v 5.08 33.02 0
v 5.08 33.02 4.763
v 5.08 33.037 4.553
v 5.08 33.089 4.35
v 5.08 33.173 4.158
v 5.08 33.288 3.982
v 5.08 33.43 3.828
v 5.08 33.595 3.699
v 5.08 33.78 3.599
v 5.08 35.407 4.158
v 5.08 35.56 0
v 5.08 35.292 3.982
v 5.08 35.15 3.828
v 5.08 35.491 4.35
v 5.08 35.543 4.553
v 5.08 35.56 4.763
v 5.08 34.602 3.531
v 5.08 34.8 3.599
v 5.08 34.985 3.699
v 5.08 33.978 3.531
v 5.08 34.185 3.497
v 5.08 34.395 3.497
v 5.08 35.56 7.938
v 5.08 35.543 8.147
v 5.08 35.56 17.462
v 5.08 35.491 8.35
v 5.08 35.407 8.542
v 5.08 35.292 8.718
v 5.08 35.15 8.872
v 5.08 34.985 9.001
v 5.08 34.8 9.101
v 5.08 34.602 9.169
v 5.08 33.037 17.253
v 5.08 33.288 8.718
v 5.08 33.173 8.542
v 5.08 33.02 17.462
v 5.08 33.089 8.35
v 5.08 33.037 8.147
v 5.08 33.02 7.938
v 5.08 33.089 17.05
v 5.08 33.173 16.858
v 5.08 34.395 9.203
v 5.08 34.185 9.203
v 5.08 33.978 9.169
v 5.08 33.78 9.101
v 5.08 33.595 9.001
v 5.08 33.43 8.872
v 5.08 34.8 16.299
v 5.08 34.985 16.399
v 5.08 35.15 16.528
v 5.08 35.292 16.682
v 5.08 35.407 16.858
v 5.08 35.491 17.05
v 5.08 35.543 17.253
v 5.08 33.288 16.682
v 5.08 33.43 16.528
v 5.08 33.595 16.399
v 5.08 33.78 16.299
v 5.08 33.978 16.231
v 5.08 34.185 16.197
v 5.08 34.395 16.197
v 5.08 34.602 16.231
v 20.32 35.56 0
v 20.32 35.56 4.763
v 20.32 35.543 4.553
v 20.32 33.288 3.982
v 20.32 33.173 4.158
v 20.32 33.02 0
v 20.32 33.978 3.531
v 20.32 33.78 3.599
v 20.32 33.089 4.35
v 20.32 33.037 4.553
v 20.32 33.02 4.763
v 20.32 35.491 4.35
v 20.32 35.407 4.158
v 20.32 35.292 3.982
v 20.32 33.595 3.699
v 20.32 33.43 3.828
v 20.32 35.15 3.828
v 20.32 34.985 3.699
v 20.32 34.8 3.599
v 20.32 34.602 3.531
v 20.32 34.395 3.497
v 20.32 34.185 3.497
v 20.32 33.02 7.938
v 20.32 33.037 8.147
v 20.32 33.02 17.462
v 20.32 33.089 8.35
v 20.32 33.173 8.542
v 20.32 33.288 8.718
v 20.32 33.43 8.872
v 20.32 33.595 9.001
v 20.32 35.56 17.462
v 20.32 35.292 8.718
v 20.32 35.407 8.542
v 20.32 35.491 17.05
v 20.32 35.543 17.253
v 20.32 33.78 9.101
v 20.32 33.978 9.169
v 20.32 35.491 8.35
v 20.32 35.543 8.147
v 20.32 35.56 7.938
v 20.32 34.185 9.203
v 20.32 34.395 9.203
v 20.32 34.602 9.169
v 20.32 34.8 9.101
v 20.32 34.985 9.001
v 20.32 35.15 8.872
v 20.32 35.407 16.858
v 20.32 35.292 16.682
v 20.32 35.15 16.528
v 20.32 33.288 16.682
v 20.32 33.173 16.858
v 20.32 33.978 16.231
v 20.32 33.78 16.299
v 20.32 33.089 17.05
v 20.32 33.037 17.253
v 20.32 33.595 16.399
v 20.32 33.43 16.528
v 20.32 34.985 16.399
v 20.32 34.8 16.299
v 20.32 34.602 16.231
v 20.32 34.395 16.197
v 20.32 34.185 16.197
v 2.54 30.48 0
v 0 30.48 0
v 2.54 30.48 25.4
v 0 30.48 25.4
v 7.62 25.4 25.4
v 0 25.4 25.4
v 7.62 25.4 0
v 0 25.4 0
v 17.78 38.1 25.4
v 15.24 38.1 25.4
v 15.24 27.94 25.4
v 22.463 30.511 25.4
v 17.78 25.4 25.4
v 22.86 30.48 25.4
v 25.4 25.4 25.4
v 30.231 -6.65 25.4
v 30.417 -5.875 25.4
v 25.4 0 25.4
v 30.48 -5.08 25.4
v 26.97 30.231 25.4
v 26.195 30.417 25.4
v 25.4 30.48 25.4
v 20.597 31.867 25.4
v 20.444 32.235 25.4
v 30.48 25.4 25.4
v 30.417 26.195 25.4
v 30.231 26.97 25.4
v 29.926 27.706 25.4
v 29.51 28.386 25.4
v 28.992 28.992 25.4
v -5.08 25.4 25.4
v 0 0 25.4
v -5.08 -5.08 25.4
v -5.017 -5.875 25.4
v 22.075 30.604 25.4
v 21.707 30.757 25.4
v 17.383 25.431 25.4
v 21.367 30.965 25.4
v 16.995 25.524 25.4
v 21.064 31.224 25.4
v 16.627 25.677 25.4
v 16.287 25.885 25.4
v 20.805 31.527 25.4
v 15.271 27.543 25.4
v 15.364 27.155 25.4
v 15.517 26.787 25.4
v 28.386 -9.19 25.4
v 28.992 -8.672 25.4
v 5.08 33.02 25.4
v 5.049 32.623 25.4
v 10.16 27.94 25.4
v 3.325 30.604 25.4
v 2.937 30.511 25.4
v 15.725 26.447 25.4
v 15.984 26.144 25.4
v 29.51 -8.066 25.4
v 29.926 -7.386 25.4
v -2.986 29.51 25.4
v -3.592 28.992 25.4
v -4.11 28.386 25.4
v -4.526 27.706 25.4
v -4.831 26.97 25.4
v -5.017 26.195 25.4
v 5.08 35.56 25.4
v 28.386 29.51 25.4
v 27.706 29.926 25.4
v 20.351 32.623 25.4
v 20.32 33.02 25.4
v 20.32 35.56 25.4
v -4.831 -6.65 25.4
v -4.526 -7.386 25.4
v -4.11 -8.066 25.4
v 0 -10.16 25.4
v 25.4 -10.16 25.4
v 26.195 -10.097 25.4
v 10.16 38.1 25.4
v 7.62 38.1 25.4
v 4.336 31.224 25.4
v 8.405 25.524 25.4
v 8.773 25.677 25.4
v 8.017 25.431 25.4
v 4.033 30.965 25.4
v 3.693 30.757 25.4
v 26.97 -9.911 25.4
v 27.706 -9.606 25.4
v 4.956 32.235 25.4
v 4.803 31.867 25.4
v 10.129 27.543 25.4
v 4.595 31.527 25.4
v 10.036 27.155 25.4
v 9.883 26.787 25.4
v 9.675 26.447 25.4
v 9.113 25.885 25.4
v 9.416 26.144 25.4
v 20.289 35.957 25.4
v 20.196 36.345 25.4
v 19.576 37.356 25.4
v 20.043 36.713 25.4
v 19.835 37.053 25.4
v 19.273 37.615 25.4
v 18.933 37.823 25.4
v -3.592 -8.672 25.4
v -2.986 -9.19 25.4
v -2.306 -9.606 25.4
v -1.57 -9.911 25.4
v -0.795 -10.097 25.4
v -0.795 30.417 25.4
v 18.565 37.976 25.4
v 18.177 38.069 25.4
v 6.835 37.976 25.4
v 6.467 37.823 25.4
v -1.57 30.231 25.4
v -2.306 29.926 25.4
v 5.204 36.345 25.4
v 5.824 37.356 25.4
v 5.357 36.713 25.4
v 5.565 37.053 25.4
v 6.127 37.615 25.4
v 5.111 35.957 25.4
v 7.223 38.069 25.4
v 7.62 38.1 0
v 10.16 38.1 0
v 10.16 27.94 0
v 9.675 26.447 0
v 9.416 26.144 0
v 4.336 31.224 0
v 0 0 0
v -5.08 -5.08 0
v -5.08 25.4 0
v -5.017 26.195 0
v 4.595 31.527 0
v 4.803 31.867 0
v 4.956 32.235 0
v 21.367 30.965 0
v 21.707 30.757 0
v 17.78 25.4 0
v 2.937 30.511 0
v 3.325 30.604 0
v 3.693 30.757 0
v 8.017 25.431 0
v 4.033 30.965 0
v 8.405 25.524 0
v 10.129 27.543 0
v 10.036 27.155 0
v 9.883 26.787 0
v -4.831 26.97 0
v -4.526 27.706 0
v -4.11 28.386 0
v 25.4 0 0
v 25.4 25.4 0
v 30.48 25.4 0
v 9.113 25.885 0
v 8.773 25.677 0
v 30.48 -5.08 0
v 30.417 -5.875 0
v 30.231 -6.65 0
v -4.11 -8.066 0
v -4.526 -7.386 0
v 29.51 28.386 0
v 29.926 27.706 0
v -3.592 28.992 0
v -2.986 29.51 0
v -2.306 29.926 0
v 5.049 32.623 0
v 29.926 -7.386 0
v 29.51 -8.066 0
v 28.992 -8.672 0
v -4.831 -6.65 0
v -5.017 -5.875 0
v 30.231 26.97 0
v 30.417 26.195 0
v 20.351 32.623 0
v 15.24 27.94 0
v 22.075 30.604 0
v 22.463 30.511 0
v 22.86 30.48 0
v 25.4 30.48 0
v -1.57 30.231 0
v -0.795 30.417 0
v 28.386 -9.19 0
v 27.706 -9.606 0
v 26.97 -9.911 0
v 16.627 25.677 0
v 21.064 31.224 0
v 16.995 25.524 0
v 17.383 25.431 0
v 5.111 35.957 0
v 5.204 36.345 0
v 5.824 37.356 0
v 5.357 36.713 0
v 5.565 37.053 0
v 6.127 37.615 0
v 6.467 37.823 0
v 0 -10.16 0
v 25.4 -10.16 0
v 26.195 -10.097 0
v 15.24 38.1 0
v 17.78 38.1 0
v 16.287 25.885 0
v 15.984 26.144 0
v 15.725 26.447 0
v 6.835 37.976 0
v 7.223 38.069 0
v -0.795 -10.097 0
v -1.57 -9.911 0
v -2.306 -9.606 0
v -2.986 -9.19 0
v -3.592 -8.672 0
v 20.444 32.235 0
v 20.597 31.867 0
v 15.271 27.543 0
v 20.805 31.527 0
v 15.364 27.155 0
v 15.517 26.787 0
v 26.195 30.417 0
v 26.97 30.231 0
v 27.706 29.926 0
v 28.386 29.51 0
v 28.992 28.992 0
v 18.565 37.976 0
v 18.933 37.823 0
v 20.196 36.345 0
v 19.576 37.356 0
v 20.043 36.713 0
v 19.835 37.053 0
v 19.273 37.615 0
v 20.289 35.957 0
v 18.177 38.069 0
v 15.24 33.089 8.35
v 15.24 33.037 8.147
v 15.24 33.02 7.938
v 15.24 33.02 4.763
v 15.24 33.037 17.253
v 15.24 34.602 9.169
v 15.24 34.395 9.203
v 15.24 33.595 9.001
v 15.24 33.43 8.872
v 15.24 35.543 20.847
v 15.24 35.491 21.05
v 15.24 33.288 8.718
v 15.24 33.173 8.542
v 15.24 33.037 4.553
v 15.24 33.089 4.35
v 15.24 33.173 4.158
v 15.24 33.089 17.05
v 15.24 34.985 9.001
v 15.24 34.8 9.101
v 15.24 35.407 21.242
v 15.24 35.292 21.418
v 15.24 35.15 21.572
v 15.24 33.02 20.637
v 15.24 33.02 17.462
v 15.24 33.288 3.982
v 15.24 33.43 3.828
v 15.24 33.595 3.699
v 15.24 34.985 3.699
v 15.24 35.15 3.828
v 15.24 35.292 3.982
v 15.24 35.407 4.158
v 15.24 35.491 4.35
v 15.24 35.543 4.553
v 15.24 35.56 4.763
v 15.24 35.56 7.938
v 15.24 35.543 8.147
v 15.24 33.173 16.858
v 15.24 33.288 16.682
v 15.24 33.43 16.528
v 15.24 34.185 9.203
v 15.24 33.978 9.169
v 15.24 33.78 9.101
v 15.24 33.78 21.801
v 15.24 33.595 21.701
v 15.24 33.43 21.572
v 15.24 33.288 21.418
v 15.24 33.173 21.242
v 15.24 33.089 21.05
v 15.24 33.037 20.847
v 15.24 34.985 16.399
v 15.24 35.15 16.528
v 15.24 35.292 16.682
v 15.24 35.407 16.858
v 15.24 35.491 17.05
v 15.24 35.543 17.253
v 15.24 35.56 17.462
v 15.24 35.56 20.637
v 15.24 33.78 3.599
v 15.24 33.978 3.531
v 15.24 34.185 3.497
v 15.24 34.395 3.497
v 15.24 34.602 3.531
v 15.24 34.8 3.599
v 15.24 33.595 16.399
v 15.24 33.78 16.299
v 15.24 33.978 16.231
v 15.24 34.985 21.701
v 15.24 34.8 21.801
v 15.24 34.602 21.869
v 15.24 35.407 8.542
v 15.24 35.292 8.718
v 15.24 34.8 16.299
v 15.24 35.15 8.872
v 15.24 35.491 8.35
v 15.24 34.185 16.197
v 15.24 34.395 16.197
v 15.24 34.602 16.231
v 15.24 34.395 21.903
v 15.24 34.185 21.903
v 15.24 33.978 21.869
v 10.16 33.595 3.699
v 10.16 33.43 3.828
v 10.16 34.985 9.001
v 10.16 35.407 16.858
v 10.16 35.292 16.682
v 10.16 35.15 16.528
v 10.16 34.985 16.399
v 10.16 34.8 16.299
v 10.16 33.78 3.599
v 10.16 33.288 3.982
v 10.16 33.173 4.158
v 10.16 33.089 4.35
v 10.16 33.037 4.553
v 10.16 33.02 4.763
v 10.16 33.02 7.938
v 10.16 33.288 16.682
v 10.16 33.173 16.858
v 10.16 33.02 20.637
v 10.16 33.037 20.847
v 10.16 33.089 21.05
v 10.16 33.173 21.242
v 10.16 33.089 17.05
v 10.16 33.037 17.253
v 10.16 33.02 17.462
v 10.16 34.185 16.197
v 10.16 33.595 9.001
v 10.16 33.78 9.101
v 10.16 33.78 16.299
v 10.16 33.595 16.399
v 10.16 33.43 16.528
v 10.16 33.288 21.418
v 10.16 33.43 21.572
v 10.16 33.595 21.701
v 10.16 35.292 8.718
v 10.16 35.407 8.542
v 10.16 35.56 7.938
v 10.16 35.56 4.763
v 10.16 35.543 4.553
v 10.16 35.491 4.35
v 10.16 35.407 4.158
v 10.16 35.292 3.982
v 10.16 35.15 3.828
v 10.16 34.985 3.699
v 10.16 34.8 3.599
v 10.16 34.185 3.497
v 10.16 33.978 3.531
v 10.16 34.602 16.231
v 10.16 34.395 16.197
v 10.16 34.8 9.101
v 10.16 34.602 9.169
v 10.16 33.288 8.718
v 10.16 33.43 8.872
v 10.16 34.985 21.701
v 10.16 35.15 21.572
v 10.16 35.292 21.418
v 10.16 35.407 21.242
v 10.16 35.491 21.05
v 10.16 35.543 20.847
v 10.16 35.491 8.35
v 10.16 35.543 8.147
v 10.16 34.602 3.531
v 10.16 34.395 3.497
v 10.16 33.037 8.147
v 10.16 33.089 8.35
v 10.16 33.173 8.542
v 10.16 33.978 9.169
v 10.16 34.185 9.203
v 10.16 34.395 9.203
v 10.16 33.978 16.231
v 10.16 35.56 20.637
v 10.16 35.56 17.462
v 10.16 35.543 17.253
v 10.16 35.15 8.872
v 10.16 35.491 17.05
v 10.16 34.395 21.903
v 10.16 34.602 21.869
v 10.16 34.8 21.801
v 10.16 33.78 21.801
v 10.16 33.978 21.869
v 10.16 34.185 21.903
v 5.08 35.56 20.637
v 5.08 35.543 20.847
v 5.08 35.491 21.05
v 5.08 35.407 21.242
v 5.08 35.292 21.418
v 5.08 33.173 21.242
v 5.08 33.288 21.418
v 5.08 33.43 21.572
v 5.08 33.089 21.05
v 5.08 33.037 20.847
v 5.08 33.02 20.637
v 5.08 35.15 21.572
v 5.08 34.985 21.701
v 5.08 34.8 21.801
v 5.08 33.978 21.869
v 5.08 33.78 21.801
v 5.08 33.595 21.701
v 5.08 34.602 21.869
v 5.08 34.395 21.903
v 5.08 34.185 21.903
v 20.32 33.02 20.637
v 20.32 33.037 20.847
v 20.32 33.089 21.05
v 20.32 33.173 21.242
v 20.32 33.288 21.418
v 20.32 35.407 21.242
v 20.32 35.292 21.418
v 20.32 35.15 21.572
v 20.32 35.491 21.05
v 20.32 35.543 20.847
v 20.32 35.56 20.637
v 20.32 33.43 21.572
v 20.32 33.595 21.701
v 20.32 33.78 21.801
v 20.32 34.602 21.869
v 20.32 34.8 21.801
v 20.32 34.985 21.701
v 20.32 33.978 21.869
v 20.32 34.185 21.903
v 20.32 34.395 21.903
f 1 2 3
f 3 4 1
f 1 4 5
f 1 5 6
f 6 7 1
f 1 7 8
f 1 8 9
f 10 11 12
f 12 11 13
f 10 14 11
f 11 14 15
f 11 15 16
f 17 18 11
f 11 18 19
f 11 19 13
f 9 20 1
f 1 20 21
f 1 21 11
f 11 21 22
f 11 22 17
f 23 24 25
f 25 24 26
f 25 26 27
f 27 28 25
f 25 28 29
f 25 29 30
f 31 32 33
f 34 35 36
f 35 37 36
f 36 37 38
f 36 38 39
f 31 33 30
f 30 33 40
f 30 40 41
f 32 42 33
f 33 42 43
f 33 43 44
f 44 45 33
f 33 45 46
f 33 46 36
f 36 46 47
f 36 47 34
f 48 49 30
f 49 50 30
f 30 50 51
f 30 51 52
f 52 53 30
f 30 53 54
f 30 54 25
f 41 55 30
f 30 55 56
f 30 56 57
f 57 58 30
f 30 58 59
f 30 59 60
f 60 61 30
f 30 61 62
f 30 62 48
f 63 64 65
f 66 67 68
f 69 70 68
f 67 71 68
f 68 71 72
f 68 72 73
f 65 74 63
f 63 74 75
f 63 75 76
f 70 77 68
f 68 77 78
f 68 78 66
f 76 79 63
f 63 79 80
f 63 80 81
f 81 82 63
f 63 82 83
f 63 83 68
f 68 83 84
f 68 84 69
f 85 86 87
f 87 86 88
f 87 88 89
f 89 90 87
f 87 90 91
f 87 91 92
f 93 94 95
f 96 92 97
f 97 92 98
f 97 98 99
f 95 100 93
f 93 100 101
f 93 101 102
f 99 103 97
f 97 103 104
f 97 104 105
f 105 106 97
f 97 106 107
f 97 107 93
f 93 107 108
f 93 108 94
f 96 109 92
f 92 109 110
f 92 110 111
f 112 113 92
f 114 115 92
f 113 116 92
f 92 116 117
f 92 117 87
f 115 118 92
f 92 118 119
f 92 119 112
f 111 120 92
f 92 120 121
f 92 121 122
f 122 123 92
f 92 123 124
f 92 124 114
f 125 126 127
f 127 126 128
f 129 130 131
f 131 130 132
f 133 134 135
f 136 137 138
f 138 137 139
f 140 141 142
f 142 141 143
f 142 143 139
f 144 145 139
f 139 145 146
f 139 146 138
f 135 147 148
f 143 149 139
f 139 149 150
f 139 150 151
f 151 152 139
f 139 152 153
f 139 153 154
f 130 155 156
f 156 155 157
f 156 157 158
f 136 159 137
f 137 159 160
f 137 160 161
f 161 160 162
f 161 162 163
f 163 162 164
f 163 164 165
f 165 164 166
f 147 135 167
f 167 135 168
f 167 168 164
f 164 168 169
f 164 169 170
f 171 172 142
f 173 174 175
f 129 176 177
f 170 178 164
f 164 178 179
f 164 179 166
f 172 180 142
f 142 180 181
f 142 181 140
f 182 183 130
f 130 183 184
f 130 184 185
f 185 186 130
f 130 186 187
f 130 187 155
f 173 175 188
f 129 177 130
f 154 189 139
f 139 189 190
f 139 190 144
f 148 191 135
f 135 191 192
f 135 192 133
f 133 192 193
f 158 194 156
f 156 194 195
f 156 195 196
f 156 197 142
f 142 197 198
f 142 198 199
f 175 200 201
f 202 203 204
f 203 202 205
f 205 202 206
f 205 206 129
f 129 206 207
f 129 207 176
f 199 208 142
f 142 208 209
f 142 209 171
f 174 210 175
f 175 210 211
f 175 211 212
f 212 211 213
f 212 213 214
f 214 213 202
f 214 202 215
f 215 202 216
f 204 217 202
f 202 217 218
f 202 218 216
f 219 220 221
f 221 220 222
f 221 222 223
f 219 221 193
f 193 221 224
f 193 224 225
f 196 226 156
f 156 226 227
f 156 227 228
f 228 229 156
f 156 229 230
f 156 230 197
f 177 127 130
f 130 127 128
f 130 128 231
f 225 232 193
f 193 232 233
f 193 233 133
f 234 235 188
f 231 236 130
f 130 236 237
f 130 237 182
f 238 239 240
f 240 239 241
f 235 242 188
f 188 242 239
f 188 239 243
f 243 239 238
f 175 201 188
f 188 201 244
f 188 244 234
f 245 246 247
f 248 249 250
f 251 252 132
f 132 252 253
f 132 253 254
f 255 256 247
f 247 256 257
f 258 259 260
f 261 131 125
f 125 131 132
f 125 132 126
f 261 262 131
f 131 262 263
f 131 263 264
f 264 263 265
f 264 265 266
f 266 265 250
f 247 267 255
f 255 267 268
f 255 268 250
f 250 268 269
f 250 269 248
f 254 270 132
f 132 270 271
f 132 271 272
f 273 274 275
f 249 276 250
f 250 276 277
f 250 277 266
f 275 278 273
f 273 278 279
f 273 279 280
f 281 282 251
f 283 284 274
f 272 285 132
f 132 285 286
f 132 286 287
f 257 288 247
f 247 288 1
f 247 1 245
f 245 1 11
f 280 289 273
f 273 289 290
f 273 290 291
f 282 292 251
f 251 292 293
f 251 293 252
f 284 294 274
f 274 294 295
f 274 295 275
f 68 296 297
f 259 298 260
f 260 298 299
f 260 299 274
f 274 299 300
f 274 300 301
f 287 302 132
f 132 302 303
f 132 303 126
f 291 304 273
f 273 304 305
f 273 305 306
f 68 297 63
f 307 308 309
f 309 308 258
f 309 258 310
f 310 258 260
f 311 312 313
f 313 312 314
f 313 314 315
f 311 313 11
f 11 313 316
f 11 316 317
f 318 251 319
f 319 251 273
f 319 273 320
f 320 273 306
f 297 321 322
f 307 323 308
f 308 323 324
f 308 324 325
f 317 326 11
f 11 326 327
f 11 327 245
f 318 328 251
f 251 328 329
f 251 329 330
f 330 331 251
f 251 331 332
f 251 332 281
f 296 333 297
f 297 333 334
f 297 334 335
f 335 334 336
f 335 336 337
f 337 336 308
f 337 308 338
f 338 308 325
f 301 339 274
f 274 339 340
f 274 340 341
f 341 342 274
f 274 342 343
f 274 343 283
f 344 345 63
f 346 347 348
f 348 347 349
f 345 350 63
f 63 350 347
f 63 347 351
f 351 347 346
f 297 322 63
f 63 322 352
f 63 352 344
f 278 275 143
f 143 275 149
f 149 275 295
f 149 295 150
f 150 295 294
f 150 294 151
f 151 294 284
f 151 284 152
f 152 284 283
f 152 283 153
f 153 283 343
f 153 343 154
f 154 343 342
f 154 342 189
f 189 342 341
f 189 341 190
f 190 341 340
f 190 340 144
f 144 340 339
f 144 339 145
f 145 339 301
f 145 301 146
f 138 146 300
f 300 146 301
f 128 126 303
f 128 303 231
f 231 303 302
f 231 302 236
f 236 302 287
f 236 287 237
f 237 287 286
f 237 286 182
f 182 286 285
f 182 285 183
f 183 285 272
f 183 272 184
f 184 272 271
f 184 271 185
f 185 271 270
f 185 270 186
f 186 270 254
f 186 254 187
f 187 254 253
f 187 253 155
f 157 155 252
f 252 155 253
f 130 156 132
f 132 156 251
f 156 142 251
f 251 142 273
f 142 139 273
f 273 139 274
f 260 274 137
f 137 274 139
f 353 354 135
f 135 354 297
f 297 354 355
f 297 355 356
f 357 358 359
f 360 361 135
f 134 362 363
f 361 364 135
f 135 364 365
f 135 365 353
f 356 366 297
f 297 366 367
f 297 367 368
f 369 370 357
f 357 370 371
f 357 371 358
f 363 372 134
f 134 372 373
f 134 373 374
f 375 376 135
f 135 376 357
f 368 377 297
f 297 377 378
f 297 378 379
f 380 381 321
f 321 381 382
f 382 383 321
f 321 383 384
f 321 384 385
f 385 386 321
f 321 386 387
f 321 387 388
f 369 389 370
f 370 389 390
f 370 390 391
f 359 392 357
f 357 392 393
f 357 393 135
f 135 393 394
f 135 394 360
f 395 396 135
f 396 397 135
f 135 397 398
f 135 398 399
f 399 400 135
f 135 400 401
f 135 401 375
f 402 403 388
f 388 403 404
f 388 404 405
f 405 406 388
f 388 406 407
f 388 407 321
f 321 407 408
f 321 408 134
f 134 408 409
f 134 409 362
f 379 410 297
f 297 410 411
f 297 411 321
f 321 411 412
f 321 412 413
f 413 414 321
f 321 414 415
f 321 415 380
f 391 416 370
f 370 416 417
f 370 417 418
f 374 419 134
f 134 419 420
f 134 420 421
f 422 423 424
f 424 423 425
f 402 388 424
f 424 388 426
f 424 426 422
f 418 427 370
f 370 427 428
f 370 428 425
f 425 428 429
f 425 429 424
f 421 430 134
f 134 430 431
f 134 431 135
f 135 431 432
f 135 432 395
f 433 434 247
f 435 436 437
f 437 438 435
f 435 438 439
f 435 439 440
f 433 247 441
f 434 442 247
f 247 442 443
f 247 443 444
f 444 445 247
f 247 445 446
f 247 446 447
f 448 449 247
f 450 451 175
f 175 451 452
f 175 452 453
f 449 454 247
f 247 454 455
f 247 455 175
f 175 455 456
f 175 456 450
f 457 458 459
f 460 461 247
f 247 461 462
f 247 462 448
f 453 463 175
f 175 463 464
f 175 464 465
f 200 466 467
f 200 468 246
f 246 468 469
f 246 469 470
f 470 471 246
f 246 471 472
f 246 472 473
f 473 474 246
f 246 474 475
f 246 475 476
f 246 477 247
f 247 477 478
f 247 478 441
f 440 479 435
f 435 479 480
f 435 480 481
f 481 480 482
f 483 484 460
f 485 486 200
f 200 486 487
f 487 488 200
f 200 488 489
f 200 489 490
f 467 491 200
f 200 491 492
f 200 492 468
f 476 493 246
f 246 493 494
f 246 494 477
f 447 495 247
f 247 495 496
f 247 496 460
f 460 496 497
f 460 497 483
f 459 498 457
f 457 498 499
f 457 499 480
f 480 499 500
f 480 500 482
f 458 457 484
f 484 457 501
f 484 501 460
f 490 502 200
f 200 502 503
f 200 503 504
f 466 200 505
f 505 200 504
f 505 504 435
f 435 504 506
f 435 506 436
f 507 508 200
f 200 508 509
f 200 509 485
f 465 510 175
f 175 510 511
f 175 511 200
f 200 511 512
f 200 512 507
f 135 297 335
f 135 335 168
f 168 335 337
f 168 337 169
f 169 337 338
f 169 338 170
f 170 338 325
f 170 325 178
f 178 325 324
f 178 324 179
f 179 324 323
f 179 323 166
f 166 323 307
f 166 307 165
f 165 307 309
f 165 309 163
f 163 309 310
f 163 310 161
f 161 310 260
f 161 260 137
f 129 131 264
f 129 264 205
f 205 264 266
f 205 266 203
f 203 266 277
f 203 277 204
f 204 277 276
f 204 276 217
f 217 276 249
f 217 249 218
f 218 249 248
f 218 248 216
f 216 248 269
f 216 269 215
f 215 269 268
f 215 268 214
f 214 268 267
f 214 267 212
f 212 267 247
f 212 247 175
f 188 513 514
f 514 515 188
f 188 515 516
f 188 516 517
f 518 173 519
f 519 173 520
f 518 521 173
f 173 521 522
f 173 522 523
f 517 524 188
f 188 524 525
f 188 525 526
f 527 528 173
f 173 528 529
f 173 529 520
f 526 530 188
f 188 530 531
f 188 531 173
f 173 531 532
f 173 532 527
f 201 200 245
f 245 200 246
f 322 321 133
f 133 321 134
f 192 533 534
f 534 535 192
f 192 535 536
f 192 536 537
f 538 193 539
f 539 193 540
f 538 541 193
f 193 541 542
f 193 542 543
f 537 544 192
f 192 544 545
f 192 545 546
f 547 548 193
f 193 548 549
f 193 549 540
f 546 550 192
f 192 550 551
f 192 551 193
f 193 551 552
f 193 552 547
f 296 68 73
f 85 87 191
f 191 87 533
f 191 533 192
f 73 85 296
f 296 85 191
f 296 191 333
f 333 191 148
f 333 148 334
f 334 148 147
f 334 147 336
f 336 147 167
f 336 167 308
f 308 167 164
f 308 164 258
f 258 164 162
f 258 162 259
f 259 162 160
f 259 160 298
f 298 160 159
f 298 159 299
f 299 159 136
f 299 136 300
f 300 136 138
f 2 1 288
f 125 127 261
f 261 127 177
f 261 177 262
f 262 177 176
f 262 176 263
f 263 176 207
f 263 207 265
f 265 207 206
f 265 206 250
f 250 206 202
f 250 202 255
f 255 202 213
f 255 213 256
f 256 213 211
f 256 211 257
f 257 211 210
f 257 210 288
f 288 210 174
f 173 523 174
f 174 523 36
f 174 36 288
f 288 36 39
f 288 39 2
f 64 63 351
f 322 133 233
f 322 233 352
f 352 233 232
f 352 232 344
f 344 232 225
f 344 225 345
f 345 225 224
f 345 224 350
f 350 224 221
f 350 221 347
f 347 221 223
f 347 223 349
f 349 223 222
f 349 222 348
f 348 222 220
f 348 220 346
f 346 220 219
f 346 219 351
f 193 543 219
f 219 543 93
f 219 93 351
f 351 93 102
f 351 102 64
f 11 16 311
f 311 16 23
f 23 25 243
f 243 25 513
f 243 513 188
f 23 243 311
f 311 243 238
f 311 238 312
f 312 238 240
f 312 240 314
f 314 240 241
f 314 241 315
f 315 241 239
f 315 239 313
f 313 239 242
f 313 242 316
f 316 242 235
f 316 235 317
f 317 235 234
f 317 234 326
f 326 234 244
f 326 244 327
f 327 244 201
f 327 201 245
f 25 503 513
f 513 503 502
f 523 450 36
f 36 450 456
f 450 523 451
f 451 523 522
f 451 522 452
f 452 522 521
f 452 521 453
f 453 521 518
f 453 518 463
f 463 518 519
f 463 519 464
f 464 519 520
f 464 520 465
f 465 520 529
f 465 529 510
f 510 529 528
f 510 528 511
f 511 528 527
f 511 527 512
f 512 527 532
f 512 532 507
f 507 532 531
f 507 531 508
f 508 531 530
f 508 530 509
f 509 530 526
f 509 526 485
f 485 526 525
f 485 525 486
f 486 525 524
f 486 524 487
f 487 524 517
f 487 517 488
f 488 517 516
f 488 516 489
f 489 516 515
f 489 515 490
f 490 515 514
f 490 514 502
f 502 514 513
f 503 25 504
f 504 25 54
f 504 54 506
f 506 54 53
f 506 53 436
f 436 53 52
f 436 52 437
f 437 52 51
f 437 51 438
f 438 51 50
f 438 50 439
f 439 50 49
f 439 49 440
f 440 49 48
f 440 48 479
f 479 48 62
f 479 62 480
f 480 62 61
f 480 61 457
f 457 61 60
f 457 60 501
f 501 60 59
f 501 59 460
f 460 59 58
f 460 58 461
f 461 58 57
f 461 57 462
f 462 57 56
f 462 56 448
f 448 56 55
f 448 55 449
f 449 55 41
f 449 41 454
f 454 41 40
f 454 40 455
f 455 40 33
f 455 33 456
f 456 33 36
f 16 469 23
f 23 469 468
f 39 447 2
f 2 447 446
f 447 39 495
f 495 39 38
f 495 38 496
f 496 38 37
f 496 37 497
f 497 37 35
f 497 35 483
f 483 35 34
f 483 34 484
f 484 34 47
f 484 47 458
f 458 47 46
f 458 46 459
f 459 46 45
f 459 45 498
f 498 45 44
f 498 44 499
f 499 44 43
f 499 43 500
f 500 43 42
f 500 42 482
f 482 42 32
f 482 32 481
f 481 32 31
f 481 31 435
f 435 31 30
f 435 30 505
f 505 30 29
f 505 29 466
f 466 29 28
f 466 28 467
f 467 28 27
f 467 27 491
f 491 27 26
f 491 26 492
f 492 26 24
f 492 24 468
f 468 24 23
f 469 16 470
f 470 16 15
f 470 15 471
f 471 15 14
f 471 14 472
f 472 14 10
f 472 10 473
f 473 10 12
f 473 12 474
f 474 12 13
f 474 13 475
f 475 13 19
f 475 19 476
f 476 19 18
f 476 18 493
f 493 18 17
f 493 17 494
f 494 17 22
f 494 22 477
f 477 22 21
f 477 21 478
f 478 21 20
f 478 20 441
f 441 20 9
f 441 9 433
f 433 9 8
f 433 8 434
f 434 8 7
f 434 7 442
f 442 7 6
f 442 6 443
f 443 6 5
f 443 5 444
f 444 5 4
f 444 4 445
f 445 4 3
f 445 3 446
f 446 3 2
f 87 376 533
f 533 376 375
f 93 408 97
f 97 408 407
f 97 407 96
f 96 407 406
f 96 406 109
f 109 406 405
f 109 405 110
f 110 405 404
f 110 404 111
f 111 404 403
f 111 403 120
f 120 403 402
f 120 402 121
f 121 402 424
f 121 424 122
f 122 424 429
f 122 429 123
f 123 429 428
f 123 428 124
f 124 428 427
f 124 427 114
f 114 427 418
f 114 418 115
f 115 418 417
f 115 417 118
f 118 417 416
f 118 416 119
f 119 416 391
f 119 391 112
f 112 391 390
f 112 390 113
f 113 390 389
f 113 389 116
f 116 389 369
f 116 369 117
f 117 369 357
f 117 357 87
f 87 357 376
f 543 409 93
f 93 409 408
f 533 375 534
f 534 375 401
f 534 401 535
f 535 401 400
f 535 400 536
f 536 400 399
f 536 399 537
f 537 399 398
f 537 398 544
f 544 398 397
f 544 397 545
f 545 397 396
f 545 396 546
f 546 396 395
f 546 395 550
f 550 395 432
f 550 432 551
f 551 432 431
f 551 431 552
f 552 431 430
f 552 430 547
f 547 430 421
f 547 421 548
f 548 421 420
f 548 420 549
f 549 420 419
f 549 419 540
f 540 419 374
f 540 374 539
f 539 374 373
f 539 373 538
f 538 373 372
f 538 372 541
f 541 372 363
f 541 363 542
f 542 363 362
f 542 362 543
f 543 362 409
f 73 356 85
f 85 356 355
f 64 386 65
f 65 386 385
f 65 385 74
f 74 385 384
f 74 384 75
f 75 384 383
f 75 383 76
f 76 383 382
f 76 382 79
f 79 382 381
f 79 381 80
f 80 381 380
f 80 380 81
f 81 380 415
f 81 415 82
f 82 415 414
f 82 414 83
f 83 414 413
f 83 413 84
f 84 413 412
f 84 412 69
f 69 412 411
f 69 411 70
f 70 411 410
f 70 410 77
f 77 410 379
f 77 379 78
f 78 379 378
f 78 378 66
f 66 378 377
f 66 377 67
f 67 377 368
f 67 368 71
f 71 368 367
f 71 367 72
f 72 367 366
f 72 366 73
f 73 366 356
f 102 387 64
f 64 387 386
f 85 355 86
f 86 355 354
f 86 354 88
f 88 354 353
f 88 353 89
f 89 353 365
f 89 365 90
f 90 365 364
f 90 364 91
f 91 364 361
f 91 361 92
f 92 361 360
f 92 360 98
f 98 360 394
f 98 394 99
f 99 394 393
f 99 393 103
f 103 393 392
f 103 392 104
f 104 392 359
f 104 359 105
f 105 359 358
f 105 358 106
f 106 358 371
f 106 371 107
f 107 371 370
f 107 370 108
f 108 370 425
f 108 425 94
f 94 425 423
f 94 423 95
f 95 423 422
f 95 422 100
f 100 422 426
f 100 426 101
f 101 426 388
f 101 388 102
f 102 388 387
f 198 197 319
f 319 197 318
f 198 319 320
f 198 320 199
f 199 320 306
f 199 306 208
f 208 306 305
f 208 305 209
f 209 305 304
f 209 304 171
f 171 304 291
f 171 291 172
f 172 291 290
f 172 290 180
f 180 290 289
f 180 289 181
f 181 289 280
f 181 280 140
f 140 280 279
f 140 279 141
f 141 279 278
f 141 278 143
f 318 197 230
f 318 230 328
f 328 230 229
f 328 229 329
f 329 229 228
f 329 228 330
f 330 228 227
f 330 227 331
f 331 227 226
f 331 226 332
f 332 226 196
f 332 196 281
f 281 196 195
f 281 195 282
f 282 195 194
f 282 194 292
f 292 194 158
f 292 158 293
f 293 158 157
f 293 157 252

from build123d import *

# Parameters (mm, degrees)
SKETCH1_W                = 25.4
SKETCH1_H                = 25.4
BOSS_EXTRUDE1_DEPTH      = 25.4
SKETCH2_W                = 5.08
SKETCH2_H                = 5.08
CUT_EXTRUDE1_DEPTH       = 51.032197633
FILLET1_R                = 2.54
SKETCH3_W                = 5.08
SKETCH3_H                = 7.62
BOSS_EXTRUDE2_DEPTH      = 25.4
FILLET2_R                = 2.54
CUT_EXTRUDE2_DEPTH       = 53.363441445
BOSS_EXTRUDE3_DEPTH      = 5.08
BOSS_EXTRUDE3_DEPTH_BACK = 5.08
SKETCH5_W                = 35.56
SKETCH5_H                = 25.4
FILLET3_R                = 5.08


with BuildPart() as part:
    # Sketch1 → Boss-Extrude1 (new body)
    with BuildSketch(Plane.XY):
        with BuildLine():
            Line((-5.08, 0), (-5.08, 25.4))
            ThreePointArc((-5.08, 25.4), (-3.592102448, 28.992102448), (0, 30.48))
            Line((0, 30.48), (25.4, 30.48))
            ThreePointArc((25.4, 30.48), (28.992102448, 28.992102448), (30.48, 25.4))
            Line((30.48, 25.4), (30.48, 0))
            ThreePointArc((30.48, 0), (28.992102448, -3.592102448), (25.4, -5.08))
            Line((25.4, -5.08), (0, -5.08))
            ThreePointArc((0, -5.08), (-3.592102448, -3.592102448), (-5.08, 0))
        make_face()
        with Locations((12.7, 12.7)):
            Rectangle(SKETCH1_W, SKETCH1_H, mode=Mode.SUBTRACT)
    extrude(amount=BOSS_EXTRUDE1_DEPTH)

    # Sketch2 → Cut-Extrude1 (cut, through all)
    with BuildSketch(Plane.XY.offset(25.4)):
        with Locations((12.7, 27.94)):
            Rectangle(SKETCH2_W, SKETCH2_H)
    extrude(amount=-CUT_EXTRUDE1_DEPTH, mode=Mode.SUBTRACT)

    # Fillet1
    fillet1_edges = [part.edges().sort_by_distance(p)[0] for p in [
        (10.16, 25.4, 12.7),
        (15.24, 25.4, 12.7),
    ]]
    fillet(fillet1_edges, radius=FILLET1_R)

    # Sketch3 → Boss-Extrude2 (add)
    with BuildSketch(Plane.XY.offset(25.4)):
        with Locations((7.62, 34.29)):
            Rectangle(SKETCH3_W, SKETCH3_H)
        with Locations((17.78, 34.29)):
            Rectangle(SKETCH3_W, SKETCH3_H)
    extrude(amount=-BOSS_EXTRUDE2_DEPTH)

    # Fillet2
    fillet2_edges = [part.edges().sort_by_distance(p)[0] for p in [
        (5.08, 30.48, 12.7),
        (5.08, 38.1, 12.7),
        (20.32, 38.1, 12.7),
        (20.32, 30.48, 12.7),
    ]]
    fillet(fillet2_edges, radius=FILLET2_R)

    # Sketch4 → Cut-Extrude2 (cut, through all)
    with BuildSketch(Plane.ZY.offset(-5.08)):
        with BuildLine():
            Line((4.7625, 35.56), (7.9375, 35.56))
            ThreePointArc((7.9375, 35.56), (9.2075, 34.29), (7.9375, 33.02))
            Line((7.9375, 33.02), (4.7625, 33.02))
            ThreePointArc((4.7625, 33.02), (3.4925, 34.29), (4.7625, 35.56))
        make_face()
        with BuildLine():
            Line((17.4625, 35.56), (20.6375, 35.56))
            ThreePointArc((20.6375, 35.56), (21.9075, 34.29), (20.6375, 33.02))
            Line((20.6375, 33.02), (17.4625, 33.02))
            ThreePointArc((17.4625, 33.02), (16.1925, 34.29), (17.4625, 35.56))
        make_face()
    extrude(amount=-CUT_EXTRUDE2_DEPTH, mode=Mode.SUBTRACT)

    # Sketch5 → Boss-Extrude3 (add, two sides: drawn at the far end of the back side and taken through both)
    with BuildSketch(Plane.XZ.offset(5.08).offset(-BOSS_EXTRUDE3_DEPTH_BACK)):
        with Locations((12.7, 12.7)):
            Rectangle(SKETCH5_W, SKETCH5_H)
    extrude(amount=BOSS_EXTRUDE3_DEPTH + BOSS_EXTRUDE3_DEPTH_BACK)

    # Fillet3
    fillet3_edges = [part.edges().sort_by_distance(p)[0] for p in [
        (-5.08, -10.16, 12.7),
        (30.48, -10.16, 12.7),
    ]]
    fillet(fillet3_edges, radius=FILLET3_R)


solid = part.part
